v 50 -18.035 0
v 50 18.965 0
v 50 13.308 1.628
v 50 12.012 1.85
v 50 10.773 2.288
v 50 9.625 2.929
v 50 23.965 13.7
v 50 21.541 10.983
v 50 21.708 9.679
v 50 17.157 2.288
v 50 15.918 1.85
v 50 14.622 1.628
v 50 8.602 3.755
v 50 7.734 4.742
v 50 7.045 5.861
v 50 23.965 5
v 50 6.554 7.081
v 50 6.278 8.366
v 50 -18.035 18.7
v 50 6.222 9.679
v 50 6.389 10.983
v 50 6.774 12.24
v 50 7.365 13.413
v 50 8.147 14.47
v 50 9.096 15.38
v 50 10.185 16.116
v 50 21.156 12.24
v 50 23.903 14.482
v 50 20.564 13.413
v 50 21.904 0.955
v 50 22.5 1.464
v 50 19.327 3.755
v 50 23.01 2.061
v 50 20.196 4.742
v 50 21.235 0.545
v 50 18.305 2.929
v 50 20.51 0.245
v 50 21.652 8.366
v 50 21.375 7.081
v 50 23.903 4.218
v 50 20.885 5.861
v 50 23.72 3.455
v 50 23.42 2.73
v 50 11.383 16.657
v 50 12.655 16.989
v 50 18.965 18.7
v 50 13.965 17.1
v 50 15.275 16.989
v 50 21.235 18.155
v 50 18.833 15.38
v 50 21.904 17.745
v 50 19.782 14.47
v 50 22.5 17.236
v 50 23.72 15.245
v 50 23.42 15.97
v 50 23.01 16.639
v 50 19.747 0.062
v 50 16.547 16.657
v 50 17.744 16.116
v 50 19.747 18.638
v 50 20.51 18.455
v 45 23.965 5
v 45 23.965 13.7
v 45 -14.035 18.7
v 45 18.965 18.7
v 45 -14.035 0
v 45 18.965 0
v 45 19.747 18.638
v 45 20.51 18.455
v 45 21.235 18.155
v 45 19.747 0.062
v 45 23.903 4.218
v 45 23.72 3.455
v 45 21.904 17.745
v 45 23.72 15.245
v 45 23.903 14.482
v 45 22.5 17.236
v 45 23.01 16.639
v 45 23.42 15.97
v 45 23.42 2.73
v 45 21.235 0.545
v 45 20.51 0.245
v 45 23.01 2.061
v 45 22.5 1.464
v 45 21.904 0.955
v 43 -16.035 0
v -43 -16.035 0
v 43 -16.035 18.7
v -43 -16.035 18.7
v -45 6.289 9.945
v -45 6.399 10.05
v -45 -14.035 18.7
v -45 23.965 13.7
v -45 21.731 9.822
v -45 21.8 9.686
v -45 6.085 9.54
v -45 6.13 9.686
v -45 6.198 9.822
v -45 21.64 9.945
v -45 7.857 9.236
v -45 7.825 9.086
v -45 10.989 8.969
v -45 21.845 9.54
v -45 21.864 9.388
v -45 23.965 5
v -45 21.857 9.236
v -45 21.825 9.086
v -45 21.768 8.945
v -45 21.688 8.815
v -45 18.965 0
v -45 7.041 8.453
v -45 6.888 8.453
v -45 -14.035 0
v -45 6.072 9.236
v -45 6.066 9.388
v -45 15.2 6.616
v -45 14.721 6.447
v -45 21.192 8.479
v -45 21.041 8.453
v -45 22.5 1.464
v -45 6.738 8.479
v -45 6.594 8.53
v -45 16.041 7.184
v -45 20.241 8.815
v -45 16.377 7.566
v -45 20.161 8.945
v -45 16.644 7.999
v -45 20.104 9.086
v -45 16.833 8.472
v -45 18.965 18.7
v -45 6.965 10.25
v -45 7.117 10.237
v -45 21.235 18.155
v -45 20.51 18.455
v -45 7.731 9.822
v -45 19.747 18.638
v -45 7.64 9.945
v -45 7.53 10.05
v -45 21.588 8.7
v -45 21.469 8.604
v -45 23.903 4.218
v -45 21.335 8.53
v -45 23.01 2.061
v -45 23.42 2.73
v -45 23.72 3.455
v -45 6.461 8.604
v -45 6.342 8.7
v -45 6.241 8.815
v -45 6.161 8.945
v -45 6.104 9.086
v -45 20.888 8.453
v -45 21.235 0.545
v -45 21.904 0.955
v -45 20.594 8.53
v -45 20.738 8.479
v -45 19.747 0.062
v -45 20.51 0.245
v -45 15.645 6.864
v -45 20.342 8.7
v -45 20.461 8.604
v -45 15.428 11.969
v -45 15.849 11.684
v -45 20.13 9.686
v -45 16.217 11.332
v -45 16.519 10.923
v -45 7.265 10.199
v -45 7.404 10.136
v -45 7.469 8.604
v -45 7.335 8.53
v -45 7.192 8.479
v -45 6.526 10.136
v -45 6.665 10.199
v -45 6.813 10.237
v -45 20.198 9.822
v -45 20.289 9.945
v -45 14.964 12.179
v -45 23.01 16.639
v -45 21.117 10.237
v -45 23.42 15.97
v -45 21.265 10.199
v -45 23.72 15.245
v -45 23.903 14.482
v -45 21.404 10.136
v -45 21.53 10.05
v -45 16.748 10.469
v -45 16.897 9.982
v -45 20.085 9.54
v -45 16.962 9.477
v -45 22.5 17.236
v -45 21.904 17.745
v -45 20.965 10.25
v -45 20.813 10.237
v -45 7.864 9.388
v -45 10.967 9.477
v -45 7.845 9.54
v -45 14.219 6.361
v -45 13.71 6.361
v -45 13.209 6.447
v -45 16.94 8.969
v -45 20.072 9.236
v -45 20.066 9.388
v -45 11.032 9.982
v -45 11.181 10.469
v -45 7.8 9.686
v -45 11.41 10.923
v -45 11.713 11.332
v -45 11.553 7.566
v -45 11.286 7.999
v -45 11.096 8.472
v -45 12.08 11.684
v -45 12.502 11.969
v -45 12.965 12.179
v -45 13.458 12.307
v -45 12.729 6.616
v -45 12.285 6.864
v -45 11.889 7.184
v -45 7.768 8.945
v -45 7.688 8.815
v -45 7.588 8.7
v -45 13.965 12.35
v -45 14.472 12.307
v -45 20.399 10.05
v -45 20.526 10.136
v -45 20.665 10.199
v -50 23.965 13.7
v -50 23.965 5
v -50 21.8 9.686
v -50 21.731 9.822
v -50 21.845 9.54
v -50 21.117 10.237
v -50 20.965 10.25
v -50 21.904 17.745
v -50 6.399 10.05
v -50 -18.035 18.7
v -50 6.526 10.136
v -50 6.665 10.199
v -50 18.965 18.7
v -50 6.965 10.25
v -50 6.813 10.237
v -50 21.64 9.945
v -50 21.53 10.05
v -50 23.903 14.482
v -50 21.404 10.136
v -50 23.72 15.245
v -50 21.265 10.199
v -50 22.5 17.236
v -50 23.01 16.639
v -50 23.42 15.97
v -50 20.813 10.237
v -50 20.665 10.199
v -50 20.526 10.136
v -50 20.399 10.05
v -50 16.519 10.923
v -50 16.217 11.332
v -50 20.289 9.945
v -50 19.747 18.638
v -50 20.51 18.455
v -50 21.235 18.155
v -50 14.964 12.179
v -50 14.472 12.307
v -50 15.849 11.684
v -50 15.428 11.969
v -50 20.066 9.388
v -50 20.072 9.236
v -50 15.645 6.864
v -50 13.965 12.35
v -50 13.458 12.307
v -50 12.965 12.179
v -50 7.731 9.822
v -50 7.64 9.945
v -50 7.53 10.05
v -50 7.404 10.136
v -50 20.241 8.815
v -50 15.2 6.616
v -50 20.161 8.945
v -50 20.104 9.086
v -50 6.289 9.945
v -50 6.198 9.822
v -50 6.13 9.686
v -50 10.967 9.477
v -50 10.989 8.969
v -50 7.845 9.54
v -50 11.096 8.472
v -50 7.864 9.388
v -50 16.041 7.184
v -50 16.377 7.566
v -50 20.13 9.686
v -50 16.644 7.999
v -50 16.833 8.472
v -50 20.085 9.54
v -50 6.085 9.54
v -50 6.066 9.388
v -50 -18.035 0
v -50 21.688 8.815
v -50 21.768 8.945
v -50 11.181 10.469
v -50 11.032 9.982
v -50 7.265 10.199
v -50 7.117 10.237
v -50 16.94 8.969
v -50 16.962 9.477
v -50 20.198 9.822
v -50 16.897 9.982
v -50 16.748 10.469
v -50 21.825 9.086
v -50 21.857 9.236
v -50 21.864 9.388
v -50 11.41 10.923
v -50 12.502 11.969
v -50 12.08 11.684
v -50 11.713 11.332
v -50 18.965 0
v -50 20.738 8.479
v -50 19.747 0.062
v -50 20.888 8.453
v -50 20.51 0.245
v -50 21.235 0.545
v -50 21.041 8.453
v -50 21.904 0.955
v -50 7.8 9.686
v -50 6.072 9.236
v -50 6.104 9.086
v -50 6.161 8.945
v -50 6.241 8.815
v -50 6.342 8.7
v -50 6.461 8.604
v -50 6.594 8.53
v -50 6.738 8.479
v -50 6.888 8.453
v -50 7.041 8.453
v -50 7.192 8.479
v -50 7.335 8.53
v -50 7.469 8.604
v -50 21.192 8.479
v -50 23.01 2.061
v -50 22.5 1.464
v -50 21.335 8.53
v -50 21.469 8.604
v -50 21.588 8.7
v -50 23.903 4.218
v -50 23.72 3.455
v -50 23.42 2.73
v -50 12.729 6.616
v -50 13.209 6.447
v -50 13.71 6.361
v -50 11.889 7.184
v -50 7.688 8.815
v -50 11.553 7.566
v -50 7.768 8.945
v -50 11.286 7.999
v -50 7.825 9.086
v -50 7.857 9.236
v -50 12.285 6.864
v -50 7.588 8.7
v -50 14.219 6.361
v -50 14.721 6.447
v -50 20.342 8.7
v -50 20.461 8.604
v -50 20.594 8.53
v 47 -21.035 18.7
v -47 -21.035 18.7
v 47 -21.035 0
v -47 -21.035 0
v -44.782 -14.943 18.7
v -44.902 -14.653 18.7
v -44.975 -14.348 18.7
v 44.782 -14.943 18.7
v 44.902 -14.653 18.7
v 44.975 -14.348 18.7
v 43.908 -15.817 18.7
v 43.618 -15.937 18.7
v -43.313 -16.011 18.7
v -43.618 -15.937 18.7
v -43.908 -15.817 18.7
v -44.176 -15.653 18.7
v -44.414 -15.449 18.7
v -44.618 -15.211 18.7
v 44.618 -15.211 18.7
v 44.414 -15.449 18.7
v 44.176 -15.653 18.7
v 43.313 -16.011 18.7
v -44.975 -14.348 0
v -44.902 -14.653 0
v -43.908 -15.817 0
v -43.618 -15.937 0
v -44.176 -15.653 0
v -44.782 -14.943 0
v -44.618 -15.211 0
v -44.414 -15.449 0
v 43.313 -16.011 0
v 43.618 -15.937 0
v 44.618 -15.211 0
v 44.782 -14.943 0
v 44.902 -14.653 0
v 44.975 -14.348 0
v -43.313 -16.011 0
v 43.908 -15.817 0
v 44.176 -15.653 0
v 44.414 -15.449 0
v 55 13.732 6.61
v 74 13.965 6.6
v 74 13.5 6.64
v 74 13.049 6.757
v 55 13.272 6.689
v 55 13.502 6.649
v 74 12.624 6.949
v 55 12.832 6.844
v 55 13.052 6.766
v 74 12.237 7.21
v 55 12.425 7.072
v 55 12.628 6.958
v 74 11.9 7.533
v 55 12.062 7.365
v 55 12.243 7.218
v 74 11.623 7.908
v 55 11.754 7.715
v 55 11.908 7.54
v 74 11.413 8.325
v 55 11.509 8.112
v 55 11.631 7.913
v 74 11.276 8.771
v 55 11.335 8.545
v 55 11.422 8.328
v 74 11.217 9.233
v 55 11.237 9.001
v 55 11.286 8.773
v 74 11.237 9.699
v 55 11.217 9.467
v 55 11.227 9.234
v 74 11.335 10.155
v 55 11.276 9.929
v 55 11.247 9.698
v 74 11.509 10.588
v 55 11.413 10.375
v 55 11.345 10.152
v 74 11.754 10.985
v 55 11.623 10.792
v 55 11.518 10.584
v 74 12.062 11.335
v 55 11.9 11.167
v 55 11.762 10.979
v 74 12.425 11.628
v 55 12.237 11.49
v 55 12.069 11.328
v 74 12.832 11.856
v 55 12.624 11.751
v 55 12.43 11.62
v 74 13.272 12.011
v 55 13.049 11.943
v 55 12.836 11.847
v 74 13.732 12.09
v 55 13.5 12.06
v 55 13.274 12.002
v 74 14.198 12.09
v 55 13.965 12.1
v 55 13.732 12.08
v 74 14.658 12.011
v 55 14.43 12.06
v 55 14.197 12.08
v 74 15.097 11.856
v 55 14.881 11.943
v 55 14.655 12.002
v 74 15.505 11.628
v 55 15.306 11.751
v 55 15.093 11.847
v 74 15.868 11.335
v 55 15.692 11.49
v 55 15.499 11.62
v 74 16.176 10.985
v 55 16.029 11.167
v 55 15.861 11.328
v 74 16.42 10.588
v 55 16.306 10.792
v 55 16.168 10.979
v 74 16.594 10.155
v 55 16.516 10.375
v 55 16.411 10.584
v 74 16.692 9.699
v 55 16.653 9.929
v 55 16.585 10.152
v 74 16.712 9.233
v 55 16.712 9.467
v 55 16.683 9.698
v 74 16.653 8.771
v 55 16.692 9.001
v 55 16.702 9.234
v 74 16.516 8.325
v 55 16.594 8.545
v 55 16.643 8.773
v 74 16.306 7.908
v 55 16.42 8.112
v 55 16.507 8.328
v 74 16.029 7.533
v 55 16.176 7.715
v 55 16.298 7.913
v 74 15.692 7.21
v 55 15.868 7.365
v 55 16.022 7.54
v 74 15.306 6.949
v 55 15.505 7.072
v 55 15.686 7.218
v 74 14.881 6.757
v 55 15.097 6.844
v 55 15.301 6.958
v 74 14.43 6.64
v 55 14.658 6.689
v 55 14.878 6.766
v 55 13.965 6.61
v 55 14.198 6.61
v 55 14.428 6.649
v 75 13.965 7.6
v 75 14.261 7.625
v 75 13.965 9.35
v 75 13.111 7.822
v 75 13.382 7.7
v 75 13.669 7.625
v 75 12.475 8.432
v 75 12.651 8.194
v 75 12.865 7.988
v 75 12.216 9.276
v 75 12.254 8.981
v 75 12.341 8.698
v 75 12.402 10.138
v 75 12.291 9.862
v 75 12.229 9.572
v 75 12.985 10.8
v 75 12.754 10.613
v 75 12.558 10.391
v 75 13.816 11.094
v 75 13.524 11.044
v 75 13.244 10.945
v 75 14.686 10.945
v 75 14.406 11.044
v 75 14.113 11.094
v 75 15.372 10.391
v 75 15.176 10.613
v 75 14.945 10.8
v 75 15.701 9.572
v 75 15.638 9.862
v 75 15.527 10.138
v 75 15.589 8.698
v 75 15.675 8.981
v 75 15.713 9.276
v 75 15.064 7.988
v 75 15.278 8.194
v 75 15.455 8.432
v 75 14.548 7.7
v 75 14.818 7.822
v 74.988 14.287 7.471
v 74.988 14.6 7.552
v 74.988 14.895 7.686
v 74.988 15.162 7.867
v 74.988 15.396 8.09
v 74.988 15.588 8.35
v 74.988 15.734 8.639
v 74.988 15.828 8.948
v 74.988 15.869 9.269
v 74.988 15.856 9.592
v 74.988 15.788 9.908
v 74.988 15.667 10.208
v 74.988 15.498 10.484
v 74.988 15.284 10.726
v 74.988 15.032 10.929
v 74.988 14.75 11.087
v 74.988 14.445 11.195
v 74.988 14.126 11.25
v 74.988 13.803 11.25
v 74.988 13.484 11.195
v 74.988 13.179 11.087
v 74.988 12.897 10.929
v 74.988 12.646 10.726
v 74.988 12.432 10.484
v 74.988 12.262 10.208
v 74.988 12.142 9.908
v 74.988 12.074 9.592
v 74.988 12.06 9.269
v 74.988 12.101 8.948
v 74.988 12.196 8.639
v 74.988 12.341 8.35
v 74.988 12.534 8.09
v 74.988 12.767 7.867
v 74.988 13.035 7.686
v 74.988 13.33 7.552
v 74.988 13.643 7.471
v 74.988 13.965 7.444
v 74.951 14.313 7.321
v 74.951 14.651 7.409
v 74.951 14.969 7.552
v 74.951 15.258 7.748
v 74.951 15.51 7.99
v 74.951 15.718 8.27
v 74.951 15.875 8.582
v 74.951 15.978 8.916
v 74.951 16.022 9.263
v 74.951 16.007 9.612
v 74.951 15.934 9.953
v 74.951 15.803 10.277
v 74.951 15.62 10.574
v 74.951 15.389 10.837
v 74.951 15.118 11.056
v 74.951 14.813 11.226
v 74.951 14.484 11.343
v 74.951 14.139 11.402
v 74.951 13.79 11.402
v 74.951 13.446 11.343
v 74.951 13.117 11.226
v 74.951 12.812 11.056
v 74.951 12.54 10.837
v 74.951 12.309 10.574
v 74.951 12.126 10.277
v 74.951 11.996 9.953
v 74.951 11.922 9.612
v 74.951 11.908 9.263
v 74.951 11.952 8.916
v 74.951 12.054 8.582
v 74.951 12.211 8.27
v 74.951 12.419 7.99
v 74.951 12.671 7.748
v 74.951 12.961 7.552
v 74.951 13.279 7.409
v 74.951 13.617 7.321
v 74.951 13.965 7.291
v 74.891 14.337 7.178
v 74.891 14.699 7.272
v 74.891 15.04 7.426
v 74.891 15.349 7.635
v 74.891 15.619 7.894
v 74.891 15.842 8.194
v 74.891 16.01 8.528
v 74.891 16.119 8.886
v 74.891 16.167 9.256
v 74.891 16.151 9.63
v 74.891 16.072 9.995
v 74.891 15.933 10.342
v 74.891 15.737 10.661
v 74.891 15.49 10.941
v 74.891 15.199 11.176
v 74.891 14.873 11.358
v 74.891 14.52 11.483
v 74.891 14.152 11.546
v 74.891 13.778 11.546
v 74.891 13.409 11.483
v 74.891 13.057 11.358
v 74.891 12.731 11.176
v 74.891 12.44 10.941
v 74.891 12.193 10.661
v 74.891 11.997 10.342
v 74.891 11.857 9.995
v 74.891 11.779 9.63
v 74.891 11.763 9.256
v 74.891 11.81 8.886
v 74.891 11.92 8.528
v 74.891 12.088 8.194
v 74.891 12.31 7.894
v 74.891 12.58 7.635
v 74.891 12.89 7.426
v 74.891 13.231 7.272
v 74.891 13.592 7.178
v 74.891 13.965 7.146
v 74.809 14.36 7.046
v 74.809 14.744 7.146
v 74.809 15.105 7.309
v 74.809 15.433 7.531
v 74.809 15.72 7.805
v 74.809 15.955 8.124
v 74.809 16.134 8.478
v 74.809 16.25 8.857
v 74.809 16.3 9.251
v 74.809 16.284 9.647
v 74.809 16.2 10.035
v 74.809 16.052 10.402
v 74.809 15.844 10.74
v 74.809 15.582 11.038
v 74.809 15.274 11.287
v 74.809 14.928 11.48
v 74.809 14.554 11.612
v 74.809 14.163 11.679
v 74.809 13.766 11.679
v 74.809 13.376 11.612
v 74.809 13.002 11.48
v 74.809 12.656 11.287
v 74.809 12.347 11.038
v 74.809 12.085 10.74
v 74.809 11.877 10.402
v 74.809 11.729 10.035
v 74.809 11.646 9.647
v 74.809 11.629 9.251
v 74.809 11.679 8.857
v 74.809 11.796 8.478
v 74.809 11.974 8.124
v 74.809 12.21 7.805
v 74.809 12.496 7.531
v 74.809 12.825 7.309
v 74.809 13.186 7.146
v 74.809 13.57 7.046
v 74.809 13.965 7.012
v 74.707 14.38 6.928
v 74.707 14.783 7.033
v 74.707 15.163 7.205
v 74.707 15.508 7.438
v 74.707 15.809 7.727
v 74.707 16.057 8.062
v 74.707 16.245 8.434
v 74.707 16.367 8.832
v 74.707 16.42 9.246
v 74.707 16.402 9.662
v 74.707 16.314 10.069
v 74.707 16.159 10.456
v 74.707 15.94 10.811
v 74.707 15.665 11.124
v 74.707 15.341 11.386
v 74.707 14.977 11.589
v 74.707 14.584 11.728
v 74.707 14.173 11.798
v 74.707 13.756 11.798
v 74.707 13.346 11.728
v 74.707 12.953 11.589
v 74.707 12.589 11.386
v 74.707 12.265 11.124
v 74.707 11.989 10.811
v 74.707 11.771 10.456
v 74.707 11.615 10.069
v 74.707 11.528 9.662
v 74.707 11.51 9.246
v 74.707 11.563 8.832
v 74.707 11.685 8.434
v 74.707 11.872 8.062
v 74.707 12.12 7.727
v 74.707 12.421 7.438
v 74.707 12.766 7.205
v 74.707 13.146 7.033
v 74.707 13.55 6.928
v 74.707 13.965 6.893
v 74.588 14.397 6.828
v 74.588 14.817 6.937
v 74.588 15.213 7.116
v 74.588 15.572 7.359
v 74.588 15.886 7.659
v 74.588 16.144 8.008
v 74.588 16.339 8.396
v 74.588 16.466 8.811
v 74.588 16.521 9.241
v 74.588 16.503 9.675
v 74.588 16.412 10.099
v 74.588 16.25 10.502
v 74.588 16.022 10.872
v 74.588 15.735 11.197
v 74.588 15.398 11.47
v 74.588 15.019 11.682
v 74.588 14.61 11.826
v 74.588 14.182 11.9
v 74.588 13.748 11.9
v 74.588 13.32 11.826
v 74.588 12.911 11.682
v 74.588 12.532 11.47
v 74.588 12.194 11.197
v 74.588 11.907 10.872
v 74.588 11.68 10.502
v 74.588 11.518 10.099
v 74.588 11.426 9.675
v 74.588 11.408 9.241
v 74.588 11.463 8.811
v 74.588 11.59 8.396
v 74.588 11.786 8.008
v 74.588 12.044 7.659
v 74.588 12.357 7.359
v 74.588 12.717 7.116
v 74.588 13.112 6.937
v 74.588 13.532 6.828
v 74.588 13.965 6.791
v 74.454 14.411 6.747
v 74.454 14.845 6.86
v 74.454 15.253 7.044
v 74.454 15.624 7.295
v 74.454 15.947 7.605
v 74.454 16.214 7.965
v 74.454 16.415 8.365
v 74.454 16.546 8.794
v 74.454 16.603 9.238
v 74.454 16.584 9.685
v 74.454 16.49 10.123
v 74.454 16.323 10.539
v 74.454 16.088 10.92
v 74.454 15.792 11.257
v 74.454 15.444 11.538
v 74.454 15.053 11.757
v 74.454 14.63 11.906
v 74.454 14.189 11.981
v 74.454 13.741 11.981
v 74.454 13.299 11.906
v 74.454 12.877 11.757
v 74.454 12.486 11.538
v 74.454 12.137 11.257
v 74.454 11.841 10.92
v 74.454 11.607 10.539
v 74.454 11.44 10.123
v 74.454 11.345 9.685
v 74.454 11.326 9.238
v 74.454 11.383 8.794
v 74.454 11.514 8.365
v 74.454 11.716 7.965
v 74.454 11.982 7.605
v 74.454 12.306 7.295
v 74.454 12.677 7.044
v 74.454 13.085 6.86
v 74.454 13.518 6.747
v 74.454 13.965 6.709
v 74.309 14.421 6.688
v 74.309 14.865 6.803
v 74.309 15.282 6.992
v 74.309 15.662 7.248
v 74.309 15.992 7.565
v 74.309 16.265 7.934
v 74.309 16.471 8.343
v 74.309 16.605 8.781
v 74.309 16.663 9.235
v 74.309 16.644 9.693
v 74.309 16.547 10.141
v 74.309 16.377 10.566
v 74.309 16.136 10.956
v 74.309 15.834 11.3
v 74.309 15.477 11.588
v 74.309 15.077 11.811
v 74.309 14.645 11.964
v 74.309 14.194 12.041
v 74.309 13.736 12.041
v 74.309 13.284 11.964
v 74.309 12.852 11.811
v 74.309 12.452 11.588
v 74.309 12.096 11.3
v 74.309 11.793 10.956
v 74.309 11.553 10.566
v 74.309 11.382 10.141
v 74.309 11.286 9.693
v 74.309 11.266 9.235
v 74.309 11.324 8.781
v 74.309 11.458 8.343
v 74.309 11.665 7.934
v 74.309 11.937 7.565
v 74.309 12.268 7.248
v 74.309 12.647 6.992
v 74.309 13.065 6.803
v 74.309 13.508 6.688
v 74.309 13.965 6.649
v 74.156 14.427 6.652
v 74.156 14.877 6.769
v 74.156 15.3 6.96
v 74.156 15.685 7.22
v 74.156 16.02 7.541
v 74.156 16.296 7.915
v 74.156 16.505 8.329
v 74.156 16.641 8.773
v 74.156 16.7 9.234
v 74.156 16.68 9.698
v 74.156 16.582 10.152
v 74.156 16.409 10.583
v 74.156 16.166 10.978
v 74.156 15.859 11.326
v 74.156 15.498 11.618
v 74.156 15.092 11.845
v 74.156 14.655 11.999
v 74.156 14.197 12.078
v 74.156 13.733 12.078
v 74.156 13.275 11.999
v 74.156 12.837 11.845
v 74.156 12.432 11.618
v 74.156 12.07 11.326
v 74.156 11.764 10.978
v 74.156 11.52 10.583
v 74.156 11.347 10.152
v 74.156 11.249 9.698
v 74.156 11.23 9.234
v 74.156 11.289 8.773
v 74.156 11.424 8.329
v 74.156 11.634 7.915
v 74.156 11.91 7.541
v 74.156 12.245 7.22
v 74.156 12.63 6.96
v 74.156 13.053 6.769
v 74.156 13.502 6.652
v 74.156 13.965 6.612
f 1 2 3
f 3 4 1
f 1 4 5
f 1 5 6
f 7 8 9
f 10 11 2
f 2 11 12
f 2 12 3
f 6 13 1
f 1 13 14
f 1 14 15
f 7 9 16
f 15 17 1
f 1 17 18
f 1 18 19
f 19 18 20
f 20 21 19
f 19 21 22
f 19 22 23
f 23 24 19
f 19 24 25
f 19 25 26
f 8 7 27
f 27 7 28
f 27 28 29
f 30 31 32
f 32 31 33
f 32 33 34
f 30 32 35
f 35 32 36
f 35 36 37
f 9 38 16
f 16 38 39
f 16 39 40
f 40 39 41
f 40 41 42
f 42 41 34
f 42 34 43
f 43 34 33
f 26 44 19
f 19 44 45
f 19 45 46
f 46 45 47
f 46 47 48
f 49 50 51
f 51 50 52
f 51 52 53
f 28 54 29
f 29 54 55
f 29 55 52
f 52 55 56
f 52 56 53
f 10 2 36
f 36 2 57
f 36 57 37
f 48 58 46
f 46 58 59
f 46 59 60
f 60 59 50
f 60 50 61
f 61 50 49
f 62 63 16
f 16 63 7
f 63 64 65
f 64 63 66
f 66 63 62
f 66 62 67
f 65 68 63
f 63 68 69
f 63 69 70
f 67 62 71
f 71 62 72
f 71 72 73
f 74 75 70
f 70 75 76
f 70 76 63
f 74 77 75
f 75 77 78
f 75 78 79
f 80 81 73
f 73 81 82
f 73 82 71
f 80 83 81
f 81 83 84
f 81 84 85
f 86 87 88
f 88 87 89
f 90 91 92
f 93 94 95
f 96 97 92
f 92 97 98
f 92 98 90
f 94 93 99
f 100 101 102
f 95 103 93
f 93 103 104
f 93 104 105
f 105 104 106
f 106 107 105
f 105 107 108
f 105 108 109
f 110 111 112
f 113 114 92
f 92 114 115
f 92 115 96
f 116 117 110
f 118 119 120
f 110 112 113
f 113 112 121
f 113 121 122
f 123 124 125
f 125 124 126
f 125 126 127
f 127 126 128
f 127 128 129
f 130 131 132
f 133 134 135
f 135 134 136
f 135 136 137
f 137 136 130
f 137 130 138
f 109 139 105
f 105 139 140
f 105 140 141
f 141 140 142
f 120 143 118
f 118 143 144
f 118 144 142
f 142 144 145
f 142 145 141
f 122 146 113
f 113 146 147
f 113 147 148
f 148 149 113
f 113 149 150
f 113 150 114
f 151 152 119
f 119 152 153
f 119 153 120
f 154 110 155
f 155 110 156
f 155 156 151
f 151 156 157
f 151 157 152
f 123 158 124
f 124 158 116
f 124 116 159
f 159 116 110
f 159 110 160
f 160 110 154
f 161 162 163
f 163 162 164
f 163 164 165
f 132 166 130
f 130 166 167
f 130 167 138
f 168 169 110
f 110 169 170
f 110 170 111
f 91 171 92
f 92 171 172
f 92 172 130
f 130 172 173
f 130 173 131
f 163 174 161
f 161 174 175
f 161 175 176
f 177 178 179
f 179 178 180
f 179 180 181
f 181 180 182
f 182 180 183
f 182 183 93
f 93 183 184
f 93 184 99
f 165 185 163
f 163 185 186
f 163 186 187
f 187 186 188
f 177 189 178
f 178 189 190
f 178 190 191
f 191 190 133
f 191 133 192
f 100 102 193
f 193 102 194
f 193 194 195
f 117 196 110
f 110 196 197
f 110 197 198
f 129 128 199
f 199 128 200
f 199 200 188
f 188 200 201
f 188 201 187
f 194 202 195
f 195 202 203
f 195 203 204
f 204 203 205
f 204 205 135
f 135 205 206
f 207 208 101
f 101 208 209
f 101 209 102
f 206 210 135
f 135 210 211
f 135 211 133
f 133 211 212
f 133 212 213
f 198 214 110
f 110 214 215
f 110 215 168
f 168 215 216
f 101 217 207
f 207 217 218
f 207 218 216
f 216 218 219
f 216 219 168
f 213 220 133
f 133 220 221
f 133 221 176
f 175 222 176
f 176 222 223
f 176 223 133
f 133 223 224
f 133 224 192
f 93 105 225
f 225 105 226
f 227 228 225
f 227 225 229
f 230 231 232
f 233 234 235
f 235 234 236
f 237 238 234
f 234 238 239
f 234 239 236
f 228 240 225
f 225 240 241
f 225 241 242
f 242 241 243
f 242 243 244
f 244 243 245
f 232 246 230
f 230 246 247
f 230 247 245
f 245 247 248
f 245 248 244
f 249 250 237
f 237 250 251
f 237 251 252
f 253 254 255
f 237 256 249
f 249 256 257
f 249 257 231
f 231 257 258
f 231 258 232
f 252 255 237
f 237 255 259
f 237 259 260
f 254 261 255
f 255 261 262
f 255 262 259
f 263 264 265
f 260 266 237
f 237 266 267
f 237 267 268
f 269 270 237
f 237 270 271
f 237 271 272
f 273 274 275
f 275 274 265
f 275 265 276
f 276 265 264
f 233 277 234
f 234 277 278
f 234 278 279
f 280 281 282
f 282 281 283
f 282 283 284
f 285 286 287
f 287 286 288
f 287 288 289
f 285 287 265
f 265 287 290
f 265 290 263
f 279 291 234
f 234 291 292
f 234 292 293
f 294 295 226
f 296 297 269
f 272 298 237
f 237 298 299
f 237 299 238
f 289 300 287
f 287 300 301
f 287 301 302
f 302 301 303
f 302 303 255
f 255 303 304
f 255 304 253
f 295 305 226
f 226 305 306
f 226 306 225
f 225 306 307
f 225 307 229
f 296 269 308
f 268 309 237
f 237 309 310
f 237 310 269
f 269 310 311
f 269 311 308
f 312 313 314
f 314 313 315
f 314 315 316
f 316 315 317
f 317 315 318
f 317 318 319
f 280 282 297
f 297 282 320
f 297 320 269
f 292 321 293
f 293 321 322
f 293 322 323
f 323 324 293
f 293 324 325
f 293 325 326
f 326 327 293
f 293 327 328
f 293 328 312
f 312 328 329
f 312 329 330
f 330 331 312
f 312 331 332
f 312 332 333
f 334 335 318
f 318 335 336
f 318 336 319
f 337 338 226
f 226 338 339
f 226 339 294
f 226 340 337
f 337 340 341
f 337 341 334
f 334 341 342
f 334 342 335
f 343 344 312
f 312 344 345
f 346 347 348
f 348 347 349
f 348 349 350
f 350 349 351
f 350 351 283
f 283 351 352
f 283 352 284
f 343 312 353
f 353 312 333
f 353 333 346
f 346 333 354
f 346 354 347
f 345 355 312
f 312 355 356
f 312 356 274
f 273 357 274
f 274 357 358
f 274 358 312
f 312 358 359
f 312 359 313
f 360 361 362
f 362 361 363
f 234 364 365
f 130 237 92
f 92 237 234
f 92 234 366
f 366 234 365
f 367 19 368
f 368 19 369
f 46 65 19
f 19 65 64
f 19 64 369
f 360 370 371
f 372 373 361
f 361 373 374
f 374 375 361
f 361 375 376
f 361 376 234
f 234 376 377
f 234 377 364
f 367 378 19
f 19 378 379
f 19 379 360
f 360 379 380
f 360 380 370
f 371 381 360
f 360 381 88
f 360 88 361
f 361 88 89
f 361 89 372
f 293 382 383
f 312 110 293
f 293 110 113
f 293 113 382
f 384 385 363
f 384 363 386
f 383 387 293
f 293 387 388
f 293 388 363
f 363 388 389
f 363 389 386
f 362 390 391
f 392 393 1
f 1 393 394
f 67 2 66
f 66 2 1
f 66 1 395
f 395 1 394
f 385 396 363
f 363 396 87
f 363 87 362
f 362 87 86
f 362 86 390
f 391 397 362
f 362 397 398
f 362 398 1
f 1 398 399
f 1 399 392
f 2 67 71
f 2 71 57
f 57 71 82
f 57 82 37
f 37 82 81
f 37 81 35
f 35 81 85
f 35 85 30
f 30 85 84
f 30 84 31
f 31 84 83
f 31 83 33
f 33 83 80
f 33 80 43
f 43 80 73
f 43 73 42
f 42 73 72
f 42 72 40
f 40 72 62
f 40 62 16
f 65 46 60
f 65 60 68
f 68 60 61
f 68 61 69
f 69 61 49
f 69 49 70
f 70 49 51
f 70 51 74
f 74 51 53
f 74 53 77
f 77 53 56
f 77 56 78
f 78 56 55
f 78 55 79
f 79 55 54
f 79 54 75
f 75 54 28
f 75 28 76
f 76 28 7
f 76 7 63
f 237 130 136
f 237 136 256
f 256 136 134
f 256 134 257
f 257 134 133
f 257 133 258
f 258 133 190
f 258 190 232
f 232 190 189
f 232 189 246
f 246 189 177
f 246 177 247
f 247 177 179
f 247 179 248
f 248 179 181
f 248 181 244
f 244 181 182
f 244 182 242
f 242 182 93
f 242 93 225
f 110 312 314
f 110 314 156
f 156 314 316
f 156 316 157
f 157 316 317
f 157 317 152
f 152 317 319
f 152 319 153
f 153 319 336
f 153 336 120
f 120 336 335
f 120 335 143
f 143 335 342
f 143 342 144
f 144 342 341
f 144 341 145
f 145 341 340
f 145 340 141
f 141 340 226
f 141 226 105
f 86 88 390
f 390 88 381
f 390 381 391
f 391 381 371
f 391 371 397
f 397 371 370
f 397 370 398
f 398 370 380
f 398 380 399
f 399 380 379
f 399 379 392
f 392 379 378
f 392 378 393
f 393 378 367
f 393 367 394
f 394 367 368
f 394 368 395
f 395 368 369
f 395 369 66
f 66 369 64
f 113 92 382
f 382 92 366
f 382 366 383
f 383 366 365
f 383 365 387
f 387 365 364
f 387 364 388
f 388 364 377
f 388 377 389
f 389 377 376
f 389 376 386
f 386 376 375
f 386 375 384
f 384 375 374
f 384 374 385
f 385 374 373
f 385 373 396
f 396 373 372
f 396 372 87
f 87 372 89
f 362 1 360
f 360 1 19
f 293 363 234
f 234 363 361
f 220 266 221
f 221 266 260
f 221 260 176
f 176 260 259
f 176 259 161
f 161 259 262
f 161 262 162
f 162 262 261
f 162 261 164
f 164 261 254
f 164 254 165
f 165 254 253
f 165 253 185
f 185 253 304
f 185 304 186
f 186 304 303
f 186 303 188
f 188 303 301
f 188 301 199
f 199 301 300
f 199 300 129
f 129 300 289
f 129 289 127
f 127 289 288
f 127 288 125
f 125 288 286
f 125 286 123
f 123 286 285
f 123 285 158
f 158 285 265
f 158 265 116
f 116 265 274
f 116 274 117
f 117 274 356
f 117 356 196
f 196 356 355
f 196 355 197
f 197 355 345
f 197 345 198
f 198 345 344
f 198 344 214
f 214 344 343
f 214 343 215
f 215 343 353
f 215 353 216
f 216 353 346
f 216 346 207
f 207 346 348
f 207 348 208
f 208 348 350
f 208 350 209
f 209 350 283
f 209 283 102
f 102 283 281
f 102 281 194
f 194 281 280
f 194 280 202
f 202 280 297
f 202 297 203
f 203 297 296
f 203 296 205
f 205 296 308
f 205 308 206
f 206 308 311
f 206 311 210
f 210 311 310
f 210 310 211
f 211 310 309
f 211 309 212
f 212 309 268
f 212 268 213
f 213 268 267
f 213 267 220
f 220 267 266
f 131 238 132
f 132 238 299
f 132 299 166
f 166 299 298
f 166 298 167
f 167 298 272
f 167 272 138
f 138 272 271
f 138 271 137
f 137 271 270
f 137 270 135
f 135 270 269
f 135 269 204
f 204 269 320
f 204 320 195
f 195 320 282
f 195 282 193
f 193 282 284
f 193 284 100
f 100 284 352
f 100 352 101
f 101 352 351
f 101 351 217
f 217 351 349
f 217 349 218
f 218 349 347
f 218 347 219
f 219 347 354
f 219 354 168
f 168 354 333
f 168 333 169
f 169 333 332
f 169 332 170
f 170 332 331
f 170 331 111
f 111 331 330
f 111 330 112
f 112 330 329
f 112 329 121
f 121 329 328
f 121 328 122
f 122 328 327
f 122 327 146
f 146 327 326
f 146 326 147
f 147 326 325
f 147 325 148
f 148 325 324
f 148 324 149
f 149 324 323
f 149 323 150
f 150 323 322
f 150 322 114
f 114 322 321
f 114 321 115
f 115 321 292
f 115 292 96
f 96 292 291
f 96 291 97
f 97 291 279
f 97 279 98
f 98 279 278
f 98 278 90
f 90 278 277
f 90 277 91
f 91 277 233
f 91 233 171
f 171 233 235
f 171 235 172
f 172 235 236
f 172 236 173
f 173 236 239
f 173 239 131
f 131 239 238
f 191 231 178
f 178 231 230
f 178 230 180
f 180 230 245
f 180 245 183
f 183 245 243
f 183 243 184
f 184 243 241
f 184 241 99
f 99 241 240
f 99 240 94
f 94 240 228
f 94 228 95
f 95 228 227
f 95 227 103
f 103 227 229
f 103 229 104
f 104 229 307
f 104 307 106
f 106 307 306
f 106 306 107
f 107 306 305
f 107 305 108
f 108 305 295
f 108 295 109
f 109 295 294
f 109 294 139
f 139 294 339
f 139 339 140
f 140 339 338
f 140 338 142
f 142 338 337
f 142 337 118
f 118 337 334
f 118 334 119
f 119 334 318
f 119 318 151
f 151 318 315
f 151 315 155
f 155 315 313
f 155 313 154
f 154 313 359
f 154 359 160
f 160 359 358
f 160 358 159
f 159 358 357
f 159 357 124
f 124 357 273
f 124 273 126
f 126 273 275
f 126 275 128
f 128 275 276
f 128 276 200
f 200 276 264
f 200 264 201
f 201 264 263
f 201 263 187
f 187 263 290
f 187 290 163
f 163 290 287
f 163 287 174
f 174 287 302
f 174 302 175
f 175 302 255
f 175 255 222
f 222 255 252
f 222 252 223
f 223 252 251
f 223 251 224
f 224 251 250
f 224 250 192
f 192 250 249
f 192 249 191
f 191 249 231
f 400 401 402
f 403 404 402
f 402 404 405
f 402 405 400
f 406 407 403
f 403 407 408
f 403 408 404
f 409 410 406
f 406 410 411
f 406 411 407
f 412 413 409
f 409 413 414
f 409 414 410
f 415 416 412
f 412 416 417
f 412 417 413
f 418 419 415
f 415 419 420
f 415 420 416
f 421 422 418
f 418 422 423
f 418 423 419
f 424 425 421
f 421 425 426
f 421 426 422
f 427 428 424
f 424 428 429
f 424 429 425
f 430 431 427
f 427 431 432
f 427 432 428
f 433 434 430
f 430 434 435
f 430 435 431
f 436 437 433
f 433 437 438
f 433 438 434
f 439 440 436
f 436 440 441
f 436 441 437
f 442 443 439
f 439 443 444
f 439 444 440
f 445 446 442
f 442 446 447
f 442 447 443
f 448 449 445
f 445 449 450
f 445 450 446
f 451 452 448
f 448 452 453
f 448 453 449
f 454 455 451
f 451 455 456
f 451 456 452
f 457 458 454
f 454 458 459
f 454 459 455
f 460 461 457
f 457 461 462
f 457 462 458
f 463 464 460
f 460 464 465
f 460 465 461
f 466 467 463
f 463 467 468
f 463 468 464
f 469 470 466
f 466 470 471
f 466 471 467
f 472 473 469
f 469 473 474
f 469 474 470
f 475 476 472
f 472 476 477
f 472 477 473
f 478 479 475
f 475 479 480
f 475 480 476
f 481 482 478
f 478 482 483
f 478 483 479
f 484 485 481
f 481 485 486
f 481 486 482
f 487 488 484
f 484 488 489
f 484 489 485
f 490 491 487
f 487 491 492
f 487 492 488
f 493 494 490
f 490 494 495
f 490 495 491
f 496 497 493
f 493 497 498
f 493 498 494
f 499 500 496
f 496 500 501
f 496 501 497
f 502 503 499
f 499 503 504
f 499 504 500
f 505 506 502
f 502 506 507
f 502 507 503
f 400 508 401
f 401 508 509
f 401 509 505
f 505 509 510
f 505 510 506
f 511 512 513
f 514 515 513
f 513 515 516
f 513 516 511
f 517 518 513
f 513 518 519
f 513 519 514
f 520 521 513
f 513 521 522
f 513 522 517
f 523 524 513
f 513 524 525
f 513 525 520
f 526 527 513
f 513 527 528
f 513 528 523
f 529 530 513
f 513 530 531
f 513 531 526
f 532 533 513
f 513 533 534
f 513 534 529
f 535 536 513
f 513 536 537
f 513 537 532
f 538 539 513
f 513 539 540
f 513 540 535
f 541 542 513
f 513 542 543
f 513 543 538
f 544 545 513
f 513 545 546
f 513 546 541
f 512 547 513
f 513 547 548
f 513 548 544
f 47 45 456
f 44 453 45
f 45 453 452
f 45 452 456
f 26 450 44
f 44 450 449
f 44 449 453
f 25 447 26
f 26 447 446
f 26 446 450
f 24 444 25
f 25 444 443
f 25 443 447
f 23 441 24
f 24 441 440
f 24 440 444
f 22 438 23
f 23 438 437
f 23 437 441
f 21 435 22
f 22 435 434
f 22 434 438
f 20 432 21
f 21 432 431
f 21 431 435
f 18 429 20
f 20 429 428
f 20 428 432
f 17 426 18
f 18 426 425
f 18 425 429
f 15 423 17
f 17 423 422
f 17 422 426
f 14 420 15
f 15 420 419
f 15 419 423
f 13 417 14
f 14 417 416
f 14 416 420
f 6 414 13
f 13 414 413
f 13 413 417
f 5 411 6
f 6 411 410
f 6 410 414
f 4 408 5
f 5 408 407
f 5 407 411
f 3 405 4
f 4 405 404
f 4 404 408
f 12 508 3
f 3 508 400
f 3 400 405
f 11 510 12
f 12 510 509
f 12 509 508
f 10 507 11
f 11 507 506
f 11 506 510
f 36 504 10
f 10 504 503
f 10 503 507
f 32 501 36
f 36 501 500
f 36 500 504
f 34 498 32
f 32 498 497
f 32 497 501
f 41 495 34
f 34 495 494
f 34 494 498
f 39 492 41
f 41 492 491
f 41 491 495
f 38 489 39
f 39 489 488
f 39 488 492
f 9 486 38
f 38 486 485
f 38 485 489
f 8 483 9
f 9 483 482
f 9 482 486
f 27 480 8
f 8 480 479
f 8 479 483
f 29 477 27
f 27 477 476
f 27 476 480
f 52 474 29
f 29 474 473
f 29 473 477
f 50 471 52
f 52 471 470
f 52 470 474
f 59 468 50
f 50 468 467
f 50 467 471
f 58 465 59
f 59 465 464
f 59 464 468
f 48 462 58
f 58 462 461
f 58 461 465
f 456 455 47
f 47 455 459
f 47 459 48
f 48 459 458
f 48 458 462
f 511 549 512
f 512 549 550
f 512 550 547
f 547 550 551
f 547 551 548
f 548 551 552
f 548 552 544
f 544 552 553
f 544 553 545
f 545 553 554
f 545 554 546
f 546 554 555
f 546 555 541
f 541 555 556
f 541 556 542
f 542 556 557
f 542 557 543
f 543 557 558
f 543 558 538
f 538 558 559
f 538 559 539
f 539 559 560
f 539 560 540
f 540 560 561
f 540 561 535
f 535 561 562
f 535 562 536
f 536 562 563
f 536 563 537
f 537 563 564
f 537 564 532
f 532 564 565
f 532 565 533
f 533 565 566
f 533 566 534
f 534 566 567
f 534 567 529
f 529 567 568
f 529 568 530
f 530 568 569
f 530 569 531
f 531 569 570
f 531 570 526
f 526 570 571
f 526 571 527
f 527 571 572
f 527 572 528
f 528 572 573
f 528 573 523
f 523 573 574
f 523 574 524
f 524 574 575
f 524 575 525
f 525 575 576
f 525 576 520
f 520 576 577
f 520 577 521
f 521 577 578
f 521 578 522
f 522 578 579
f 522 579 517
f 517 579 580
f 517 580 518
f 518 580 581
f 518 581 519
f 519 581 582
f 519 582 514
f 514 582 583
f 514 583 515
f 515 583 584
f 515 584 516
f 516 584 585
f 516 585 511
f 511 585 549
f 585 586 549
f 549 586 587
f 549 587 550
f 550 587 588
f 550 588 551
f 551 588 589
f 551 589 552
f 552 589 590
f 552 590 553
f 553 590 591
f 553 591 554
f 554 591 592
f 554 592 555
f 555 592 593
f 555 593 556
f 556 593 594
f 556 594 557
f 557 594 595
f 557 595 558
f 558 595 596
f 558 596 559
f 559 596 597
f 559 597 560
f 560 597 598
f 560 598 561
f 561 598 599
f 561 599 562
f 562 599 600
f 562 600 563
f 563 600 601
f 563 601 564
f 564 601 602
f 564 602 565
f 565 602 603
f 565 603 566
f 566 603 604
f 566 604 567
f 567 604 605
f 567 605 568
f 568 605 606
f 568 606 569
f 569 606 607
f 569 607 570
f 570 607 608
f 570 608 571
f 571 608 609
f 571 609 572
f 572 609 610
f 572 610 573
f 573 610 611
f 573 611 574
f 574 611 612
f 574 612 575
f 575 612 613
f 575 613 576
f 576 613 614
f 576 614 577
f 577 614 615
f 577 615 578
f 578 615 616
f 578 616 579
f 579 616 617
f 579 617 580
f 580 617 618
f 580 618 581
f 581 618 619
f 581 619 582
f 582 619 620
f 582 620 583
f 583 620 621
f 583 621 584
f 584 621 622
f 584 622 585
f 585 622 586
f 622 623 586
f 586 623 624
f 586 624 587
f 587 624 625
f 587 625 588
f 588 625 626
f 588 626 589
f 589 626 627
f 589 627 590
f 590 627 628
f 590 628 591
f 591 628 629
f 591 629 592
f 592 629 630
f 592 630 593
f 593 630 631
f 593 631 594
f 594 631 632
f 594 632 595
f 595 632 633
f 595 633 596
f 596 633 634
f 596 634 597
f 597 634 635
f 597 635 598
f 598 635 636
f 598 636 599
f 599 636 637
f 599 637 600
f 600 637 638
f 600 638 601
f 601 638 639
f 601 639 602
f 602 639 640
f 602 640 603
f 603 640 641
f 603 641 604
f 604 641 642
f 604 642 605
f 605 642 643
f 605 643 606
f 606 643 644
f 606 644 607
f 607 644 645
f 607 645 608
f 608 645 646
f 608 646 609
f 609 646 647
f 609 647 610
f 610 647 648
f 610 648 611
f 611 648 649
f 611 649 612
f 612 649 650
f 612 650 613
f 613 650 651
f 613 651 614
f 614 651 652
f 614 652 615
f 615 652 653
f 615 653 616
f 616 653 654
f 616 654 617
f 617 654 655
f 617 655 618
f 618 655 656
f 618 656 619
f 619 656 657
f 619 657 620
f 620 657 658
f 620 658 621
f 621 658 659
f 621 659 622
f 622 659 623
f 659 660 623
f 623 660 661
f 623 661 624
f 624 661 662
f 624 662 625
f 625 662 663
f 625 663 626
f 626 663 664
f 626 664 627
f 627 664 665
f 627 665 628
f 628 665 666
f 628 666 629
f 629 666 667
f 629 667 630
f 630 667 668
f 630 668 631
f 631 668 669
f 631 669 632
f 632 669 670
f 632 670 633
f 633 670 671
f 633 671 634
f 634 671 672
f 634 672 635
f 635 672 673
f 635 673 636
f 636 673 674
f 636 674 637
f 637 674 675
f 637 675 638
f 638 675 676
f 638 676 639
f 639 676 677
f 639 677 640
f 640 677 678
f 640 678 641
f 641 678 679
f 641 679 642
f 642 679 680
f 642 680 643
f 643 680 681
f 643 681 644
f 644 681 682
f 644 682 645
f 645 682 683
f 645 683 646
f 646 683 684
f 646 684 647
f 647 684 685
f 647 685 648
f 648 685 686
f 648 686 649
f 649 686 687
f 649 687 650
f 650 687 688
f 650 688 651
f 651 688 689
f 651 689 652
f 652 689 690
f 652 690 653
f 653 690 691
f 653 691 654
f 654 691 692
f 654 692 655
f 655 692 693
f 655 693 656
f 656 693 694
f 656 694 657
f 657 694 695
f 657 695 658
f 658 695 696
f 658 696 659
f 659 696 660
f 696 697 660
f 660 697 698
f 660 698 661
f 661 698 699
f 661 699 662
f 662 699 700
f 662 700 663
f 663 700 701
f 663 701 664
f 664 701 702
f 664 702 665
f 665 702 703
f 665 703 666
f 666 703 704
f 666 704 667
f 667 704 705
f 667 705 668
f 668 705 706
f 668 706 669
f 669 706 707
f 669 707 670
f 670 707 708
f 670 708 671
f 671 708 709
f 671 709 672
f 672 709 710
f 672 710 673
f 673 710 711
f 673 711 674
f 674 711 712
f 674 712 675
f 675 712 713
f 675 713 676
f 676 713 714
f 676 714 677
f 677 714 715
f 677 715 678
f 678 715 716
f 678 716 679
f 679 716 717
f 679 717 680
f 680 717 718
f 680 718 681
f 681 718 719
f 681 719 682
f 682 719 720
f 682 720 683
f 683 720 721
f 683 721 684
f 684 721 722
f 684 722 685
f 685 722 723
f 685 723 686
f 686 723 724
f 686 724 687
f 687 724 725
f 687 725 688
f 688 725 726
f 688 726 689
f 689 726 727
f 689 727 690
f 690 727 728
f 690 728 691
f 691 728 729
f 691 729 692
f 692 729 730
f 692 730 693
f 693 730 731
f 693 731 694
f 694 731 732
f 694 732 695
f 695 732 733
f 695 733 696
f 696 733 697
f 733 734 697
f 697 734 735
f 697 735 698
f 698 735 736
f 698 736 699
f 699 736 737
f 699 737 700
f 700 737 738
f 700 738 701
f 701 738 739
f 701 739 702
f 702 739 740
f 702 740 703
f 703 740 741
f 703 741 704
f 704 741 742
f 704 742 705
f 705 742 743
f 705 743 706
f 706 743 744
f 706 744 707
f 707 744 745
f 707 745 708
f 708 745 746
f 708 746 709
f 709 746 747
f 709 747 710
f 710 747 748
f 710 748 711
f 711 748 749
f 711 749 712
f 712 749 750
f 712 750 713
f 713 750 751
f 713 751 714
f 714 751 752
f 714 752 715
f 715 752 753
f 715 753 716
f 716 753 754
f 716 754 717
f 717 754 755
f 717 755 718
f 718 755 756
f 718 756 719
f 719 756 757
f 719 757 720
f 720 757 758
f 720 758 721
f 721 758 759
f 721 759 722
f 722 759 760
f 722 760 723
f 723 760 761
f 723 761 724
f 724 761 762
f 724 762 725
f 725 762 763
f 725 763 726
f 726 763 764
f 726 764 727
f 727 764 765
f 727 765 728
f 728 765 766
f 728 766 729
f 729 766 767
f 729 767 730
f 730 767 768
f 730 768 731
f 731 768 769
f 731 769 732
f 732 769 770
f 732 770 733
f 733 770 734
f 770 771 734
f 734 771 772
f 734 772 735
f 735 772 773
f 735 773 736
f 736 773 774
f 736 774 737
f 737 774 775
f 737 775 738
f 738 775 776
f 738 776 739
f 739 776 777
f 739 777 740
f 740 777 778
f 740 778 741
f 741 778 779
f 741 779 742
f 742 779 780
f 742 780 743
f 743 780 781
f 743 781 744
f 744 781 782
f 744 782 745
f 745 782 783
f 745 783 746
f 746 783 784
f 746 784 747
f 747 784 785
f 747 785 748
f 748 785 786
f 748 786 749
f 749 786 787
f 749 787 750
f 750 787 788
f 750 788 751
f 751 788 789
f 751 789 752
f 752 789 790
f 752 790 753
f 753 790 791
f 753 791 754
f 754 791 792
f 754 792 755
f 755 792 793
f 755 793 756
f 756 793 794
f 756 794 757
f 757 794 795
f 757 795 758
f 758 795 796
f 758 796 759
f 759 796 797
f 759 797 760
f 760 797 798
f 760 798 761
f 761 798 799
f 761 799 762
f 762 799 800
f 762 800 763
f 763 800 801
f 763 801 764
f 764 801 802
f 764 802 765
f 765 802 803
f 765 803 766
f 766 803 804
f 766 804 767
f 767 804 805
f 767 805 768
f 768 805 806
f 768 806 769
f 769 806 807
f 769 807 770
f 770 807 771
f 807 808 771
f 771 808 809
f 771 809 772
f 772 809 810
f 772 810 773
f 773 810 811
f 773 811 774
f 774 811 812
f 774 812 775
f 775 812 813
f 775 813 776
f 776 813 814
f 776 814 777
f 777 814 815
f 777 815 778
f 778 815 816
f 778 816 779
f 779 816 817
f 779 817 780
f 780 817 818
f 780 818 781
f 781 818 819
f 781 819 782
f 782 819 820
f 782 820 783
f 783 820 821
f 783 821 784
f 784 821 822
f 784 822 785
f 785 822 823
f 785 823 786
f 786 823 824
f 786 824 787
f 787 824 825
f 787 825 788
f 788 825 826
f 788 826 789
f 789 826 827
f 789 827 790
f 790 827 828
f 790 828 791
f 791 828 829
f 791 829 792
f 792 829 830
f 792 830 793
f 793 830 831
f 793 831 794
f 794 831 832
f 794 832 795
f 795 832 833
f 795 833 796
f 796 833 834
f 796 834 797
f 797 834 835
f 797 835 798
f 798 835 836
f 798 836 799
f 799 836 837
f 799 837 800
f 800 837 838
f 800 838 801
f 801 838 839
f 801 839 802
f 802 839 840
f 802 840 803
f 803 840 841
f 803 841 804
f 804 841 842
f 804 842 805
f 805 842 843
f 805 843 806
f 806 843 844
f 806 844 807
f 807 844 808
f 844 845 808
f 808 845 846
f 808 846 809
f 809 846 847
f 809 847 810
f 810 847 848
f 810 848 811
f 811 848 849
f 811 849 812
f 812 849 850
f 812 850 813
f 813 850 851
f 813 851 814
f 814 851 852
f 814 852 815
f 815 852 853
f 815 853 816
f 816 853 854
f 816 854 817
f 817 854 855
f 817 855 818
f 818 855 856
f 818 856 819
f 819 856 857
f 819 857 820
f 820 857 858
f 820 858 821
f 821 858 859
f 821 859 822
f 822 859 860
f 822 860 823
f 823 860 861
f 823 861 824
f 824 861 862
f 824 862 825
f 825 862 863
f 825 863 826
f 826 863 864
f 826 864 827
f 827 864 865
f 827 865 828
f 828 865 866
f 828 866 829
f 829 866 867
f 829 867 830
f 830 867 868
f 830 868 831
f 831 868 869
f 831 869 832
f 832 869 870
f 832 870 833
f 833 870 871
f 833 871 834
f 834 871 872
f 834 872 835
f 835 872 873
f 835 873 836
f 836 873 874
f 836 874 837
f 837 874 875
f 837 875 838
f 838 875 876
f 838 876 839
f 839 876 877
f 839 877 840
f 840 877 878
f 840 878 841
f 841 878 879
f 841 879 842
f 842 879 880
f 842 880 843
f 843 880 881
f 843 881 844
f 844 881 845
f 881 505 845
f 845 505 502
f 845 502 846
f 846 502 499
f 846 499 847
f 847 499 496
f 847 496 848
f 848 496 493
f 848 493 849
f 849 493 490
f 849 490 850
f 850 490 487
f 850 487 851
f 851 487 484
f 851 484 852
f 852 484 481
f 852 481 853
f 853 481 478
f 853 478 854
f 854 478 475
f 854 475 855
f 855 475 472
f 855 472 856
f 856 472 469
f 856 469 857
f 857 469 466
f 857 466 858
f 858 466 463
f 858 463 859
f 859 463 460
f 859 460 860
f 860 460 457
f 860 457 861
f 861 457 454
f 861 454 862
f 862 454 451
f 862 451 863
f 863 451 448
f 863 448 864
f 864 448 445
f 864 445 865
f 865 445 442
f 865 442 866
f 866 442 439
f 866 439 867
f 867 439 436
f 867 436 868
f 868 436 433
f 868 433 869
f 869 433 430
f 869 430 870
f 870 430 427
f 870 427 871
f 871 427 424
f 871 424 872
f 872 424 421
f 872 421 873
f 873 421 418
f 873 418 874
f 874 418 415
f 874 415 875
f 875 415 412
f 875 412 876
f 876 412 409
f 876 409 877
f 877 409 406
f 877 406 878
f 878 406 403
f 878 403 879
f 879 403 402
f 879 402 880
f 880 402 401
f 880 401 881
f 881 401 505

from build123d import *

# Parameters (mm, degrees)
BOSS_EXTRUDE1_DEPTH      = 18.7
FILLET1_R                = 5
FILLET2_R                = 2
CHAMFER1_SIZE            = 3
SKETCH2_R                = 3
SKETCH2_R_2              = 0.9
CUT_EXTRUDE1_DEPTH       = 18.7
SKETCH3_R                = 0.414419125
CUT_EXTRUDE2_DEPTH       = 118.7
BOSS_EXTRUDE2_DEPTH      = 25
BOSS_EXTRUDE2_DEPTH_BACK = 5
SKETCH4_R                = 2.75
CHAMFER2_SIZE            = 5
FILLET3_R                = 1


with BuildPart() as part:
    # Sketch1 → Boss-Extrude1 (new body)
    with BuildSketch(Plane.XY):
        Polygon((-45, -16.035242291), (45, -16.035242291), (45, 23.964757709), (50, 23.964757709), (50, -16.035242291), (50, -21.035242291), (-50, -21.035242291), (-50, -16.035242291), (-50, 23.964757709), (-45, 23.964757709), align=None)
    extrude(amount=BOSS_EXTRUDE1_DEPTH)

    # Fillet1
    fillet1_edges = [part.edges().sort_by_distance(p)[0] for p in [
        (47.5, 23.964757709, 18.7),
        (-47.5, 23.964757709, 0),
        (47.5, 23.964757709, 0),
        (-47.5, 23.964757709, 18.7),
    ]]
    fillet(fillet1_edges, radius=FILLET1_R)

    # Fillet2
    fillet2_edges = [part.edges().sort_by_distance(p)[0] for p in [
        (-45, -16.035242291, 9.35),
        (45, -16.035242291, 9.35),
    ]]
    fillet(fillet2_edges, radius=FILLET2_R)

    # Chamfer1
    chamfer1_edges = [part.edges().sort_by_distance(p)[0] for p in [
        (50, -21.035242291, 9.35),
        (-50, -21.035242291, 9.35),
    ]]
    chamfer(chamfer1_edges, length=CHAMFER1_SIZE)

    # Sketch2 → Cut-Extrude1 (cut)
    with BuildSketch(Plane.ZY.offset(50)):
        with Locations((9.35, 13.964757709)):
            Circle(SKETCH2_R)
        with Locations((9.35, 20.964757709)):
            Circle(SKETCH2_R_2)
        with Locations((9.35, 6.964757709)):
            Circle(SKETCH2_R_2)
    extrude(amount=-CUT_EXTRUDE1_DEPTH, mode=Mode.SUBTRACT)

    # Sketch3 → Cut-Extrude2 (cut)
    with BuildSketch(Plane.ZY.offset(50)):
        with Locations((9.35, 13.964757709)):
            Circle(SKETCH3_R)
    extrude(amount=-CUT_EXTRUDE2_DEPTH, mode=Mode.SUBTRACT)

    # Sketch4 → Boss-Extrude2 (add, two sides: drawn at the far end of the back side and taken through both)
    with BuildSketch(Plane(origin=(50, 0, 0), x_dir=(0, 0, -1), z_dir=(1, 0, 0)).offset(-BOSS_EXTRUDE2_DEPTH_BACK)):
        with Locations((-9.35, 13.964757709)):
            Circle(SKETCH4_R)
    extrude(amount=BOSS_EXTRUDE2_DEPTH + BOSS_EXTRUDE2_DEPTH_BACK)

    # Chamfer2
    chamfer2_edges = [part.edges().sort_by_distance(p)[0] for p in [
        (50, 13.964757709, 12.1),
    ]]
    chamfer(chamfer2_edges, length=CHAMFER2_SIZE)

    # Fillet3
    fillet3_edges = [part.edges().sort_by_distance(p)[0] for p in [
        (75, 13.964757709, 12.1),
    ]]
    fillet(fillet3_edges, radius=FILLET3_R)


solid = part.part
